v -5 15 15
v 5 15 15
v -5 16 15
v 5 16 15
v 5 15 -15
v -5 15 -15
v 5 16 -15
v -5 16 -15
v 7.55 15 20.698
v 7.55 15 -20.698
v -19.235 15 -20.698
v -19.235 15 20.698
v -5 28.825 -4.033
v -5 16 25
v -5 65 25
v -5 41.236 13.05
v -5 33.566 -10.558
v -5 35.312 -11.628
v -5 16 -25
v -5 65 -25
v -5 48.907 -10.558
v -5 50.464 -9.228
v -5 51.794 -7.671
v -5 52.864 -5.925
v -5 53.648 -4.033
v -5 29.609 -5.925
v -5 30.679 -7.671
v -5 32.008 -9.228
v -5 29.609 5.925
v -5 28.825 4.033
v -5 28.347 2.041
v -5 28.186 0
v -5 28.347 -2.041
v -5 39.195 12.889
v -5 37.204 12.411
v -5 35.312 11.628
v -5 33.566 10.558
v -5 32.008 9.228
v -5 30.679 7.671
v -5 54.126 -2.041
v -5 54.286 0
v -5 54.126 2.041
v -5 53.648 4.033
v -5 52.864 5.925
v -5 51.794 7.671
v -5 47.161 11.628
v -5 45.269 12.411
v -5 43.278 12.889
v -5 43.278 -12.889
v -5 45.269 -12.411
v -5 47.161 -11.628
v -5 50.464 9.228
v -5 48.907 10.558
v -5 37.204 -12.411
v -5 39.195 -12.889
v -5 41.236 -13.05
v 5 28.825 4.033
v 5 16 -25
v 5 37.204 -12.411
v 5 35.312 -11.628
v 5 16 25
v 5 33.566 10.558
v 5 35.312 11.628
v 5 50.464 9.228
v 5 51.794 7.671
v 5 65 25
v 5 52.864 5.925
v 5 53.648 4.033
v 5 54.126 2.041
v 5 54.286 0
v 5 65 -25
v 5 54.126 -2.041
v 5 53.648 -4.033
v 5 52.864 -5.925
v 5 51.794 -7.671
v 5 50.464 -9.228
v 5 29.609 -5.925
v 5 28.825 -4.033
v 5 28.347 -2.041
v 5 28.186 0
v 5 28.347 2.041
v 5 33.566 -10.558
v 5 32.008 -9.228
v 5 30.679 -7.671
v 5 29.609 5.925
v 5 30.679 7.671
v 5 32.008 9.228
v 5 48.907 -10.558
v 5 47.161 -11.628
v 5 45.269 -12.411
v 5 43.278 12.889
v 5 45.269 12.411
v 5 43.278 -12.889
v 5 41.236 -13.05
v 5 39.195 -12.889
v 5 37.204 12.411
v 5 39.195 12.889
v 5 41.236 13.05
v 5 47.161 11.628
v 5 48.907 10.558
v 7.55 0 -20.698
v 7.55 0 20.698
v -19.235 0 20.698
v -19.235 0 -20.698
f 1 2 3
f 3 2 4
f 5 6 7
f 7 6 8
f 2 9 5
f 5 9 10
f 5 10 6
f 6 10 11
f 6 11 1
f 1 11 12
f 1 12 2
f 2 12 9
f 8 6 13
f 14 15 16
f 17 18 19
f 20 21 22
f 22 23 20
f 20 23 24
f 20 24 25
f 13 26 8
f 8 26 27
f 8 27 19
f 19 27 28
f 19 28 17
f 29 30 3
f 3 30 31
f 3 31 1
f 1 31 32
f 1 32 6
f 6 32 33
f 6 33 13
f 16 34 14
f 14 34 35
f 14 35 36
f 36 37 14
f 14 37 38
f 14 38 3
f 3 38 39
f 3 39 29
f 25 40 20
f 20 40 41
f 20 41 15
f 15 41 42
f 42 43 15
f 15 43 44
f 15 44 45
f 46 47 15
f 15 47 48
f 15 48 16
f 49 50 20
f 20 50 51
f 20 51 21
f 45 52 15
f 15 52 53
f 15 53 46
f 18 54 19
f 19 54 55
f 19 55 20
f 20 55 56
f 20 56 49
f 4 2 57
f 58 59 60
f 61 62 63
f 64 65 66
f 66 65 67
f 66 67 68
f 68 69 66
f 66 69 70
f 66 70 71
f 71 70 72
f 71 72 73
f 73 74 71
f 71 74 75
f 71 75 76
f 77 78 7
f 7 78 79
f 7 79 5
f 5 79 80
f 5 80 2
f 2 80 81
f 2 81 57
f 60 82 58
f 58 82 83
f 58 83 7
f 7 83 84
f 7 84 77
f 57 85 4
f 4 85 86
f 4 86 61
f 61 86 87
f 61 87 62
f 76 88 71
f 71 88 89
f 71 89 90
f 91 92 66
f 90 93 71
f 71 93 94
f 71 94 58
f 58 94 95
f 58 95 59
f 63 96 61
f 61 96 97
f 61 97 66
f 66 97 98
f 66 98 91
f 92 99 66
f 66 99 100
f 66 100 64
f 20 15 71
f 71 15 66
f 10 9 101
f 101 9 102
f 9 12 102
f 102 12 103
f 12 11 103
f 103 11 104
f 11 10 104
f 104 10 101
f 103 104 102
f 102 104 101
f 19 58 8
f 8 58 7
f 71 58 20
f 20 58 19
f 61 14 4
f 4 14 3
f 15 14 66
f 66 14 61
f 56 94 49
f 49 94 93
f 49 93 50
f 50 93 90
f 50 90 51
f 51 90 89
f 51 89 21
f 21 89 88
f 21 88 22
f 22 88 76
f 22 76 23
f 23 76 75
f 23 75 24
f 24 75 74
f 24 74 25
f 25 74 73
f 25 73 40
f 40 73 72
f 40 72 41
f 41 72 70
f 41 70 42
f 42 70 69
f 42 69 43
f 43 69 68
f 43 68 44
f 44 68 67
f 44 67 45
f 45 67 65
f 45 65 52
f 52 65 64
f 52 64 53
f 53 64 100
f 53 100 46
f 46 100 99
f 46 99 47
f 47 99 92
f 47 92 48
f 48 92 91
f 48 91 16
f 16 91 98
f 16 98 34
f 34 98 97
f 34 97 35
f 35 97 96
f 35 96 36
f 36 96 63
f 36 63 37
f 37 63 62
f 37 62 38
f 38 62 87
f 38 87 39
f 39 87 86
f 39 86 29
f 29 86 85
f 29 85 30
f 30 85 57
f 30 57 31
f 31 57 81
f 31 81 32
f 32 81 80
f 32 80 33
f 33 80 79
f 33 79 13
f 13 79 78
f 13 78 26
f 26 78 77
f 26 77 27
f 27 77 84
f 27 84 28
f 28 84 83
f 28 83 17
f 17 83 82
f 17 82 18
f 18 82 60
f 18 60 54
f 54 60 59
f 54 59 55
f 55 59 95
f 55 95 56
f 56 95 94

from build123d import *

# Parameters (mm, degrees)
SKETCH1_W           = 280
SKETCH1_H           = 210
BOSS_EXTRUDE1_DEPTH = 15
SKETCH2_R           = 5
BOSS_EXTRUDE2_DEPTH = 50
SKETCH3_W           = 10
SKETCH3_H           = 30
BOSS_EXTRUDE3_DEPTH = 50
SKETCH5_W           = 360.4909063
SKETCH5_H           = 249.182613404
SKETCH5_W_2         = 248.173776912
SKETCH5_H_2         = 125.095724948
CUT_EXTRUDE5_DEPTH  = 15
CUT_EXTRUDE6_START  = -65
SKETCH7_R           = 5
CUT_EXTRUDE6_DEPTH  = 65
SKETCH8_R           = 10
CUT_EXTRUDE7_DEPTH  = 12
SKETCH9_W           = 29.13
SKETCH9_H           = 16.72
CUT_EXTRUDE8_DEPTH  = 15
SKETCH10_W          = 26.78462743
SKETCH10_H          = 41.395526334
CUT_EXTRUDE9_DEPTH  = 27
SKETCH11_W          = 10
SKETCH11_H          = 49
BOSS_EXTRUDE4_DEPTH = 10
SKETCH12_W          = 10
SKETCH12_H          = 49
BOSS_EXTRUDE5_DEPTH = 10
SKETCH4_R           = 13.05
CUT_EXTRUDE10_DEPTH = 74.738133634


with BuildPart() as part:
    # Sketch1 → Boss-Extrude1 (new body)
    with BuildSketch(Plane(origin=(0, 0, 0), x_dir=(1, 0, 0), z_dir=(0, 1, 0))):
        Rectangle(SKETCH1_W, SKETCH1_H)
    extrude(amount=BOSS_EXTRUDE1_DEPTH)

    # Sketch2 → Boss-Extrude2 (add)
    with BuildSketch(Plane(origin=(0, 15, 0), x_dir=(1, 0, 0), z_dir=(0, 1, 0))):
        with Locations(Location((-100, 0, 0), (0, 0, 270))):
            Circle(SKETCH2_R)
        with Locations(Location((-100, 45, 0), (0, 0, 270))):
            Circle(SKETCH2_R)
        with Locations(Location((-100, -45, 0), (0, 0, 270))):
            Circle(SKETCH2_R)
    extrude(amount=BOSS_EXTRUDE2_DEPTH)

    # Sketch3 → Boss-Extrude3 (add)
    with BuildSketch(Plane(origin=(0, 15, 0), x_dir=(1, 0, 0), z_dir=(0, 1, 0))):
        Rectangle(SKETCH3_W, SKETCH3_H)
    extrude(amount=BOSS_EXTRUDE3_DEPTH)

    # Sketch5 → Cut-Extrude5 (cut)
    with BuildSketch(Plane(origin=(0, 0, 0), x_dir=(1, 0, 0), z_dir=(0, 1, 0))):
        with Locations((1.345115322, -3.19464889)):
            Rectangle(SKETCH5_W, SKETCH5_H)
        Rectangle(SKETCH5_W_2, SKETCH5_H_2, mode=Mode.SUBTRACT)
    extrude(amount=CUT_EXTRUDE5_DEPTH, mode=Mode.SUBTRACT)

    # Sketch7 → Cut-Extrude6 (cut)
    with BuildSketch(Plane(origin=(0, 65, 0), x_dir=(1, 0, 0), z_dir=(0, 1, 0)).offset(CUT_EXTRUDE6_START)):
        with Locations(Location((-100, 45, 0), (0, 0, 270))):
            Circle(SKETCH7_R)
        with Locations(Location((-100, 0, 0), (0, 0, 270))):
            Circle(SKETCH7_R)
        with Locations(Location((-100, -45, 0), (0, 0, 270))):
            Circle(SKETCH7_R)
    extrude(amount=CUT_EXTRUDE6_DEPTH, mode=Mode.SUBTRACT)

    # Sketch8 → Cut-Extrude7 (cut)
    with BuildSketch(Plane.XZ):
        with Locations(Location((-100, 45, 0), (0, 0, 270))):
            Circle(SKETCH8_R)
        with Locations(Location((-100, 0, 0), (0, 0, 270))):
            Circle(SKETCH8_R)
        with Locations(Location((-100, -45, 0), (0, 0, 270))):
            Circle(SKETCH8_R)
    extrude(amount=-CUT_EXTRUDE7_DEPTH, mode=Mode.SUBTRACT)

    # Sketch9 → Cut-Extrude8 (cut)
    with BuildSketch(Plane(origin=(0, 15, 0), x_dir=(1, 0, 0), z_dir=(0, 1, 0))):
        with Locations((-48.397782089, 51.271912045)):
            Rectangle(SKETCH9_W, SKETCH9_H)
    extrude(amount=-CUT_EXTRUDE8_DEPTH, mode=Mode.SUBTRACT)

    # Sketch10 → Cut-Extrude9 (cut)
    with BuildSketch(Plane(origin=(0, 15, 0), x_dir=(1, 0, 0), z_dir=(0, 1, 0))):
        Polygon((10.617962241, 62.547862474), (-124.086888456, 62.547862474), (-124.086888456, -62.547862474), (10.617962241, -62.547862474), (124.086888456, -62.547862474), (124.086888456, 62.547862474), align=None)
        with Locations((-5.842214377, 0)):
            Rectangle(SKETCH10_W, SKETCH10_H, mode=Mode.SUBTRACT)
    extrude(amount=-CUT_EXTRUDE9_DEPTH, mode=Mode.SUBTRACT)

    # Sketch11 → Boss-Extrude4 (add)
    with BuildSketch(Plane(origin=(0, 0, -15), x_dir=(-1, 0, 0), z_dir=(0, 0, -1))):
        with Locations((0, 40.5)):
            Rectangle(SKETCH11_W, SKETCH11_H)
    extrude(amount=BOSS_EXTRUDE4_DEPTH)

    # Sketch12 → Boss-Extrude5 (add)
    with BuildSketch(Plane.XY.offset(15)):
        with Locations((0, 40.5)):
            Rectangle(SKETCH12_W, SKETCH12_H)
    extrude(amount=BOSS_EXTRUDE5_DEPTH)

    # Sketch4 → Cut-Extrude10 (cut, through all)
    with BuildSketch(Plane(origin=(5, 0, 0), x_dir=(0, 0, -1), z_dir=(1, 0, 0))):
        with Locations((0, 41.236240869)):
            Circle(SKETCH4_R)
    extrude(amount=-CUT_EXTRUDE10_DEPTH, mode=Mode.SUBTRACT)


solid = part.part
